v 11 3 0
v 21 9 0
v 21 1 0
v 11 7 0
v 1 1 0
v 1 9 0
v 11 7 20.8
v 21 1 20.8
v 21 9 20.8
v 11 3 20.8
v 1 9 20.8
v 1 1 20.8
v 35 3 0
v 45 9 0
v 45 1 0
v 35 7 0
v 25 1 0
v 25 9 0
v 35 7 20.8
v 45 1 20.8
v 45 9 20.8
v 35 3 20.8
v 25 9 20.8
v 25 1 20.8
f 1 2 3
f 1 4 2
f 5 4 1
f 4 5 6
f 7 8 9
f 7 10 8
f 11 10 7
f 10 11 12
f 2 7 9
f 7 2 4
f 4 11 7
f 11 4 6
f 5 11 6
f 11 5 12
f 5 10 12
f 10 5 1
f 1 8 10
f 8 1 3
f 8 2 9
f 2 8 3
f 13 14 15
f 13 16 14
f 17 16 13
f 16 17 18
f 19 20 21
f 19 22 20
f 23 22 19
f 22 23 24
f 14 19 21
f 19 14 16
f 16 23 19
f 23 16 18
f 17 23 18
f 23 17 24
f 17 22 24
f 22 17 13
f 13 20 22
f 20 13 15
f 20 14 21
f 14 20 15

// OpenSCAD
// TailWatch S3 enclosure -- bowtie_keys
// Two bowtie keys that join the frame halves. Standing as exported.
// Exported in print orientation; no supports needed.
include <tailwatch_lib.scad>
run_checks();
keys_print();
